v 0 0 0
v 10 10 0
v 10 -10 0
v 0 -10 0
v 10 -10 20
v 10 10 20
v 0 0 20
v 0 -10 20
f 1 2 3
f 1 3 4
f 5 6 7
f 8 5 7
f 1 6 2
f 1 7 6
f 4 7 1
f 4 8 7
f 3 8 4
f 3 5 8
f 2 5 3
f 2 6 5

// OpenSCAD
// Parameters
thickness = 1;
width = 20;
height = 20;
num_segments = 48;

module mobius_strip(width, height, thickness) {
  linear_extrude(height = height, convexity = 10)
  polygon(points = [
      [0, 0],
      [width / 2, height / 2],
      [width / 2, -height / 2],
      [0, -height / 2]
  ]);
}

mobius_strip(width, height, thickness);
